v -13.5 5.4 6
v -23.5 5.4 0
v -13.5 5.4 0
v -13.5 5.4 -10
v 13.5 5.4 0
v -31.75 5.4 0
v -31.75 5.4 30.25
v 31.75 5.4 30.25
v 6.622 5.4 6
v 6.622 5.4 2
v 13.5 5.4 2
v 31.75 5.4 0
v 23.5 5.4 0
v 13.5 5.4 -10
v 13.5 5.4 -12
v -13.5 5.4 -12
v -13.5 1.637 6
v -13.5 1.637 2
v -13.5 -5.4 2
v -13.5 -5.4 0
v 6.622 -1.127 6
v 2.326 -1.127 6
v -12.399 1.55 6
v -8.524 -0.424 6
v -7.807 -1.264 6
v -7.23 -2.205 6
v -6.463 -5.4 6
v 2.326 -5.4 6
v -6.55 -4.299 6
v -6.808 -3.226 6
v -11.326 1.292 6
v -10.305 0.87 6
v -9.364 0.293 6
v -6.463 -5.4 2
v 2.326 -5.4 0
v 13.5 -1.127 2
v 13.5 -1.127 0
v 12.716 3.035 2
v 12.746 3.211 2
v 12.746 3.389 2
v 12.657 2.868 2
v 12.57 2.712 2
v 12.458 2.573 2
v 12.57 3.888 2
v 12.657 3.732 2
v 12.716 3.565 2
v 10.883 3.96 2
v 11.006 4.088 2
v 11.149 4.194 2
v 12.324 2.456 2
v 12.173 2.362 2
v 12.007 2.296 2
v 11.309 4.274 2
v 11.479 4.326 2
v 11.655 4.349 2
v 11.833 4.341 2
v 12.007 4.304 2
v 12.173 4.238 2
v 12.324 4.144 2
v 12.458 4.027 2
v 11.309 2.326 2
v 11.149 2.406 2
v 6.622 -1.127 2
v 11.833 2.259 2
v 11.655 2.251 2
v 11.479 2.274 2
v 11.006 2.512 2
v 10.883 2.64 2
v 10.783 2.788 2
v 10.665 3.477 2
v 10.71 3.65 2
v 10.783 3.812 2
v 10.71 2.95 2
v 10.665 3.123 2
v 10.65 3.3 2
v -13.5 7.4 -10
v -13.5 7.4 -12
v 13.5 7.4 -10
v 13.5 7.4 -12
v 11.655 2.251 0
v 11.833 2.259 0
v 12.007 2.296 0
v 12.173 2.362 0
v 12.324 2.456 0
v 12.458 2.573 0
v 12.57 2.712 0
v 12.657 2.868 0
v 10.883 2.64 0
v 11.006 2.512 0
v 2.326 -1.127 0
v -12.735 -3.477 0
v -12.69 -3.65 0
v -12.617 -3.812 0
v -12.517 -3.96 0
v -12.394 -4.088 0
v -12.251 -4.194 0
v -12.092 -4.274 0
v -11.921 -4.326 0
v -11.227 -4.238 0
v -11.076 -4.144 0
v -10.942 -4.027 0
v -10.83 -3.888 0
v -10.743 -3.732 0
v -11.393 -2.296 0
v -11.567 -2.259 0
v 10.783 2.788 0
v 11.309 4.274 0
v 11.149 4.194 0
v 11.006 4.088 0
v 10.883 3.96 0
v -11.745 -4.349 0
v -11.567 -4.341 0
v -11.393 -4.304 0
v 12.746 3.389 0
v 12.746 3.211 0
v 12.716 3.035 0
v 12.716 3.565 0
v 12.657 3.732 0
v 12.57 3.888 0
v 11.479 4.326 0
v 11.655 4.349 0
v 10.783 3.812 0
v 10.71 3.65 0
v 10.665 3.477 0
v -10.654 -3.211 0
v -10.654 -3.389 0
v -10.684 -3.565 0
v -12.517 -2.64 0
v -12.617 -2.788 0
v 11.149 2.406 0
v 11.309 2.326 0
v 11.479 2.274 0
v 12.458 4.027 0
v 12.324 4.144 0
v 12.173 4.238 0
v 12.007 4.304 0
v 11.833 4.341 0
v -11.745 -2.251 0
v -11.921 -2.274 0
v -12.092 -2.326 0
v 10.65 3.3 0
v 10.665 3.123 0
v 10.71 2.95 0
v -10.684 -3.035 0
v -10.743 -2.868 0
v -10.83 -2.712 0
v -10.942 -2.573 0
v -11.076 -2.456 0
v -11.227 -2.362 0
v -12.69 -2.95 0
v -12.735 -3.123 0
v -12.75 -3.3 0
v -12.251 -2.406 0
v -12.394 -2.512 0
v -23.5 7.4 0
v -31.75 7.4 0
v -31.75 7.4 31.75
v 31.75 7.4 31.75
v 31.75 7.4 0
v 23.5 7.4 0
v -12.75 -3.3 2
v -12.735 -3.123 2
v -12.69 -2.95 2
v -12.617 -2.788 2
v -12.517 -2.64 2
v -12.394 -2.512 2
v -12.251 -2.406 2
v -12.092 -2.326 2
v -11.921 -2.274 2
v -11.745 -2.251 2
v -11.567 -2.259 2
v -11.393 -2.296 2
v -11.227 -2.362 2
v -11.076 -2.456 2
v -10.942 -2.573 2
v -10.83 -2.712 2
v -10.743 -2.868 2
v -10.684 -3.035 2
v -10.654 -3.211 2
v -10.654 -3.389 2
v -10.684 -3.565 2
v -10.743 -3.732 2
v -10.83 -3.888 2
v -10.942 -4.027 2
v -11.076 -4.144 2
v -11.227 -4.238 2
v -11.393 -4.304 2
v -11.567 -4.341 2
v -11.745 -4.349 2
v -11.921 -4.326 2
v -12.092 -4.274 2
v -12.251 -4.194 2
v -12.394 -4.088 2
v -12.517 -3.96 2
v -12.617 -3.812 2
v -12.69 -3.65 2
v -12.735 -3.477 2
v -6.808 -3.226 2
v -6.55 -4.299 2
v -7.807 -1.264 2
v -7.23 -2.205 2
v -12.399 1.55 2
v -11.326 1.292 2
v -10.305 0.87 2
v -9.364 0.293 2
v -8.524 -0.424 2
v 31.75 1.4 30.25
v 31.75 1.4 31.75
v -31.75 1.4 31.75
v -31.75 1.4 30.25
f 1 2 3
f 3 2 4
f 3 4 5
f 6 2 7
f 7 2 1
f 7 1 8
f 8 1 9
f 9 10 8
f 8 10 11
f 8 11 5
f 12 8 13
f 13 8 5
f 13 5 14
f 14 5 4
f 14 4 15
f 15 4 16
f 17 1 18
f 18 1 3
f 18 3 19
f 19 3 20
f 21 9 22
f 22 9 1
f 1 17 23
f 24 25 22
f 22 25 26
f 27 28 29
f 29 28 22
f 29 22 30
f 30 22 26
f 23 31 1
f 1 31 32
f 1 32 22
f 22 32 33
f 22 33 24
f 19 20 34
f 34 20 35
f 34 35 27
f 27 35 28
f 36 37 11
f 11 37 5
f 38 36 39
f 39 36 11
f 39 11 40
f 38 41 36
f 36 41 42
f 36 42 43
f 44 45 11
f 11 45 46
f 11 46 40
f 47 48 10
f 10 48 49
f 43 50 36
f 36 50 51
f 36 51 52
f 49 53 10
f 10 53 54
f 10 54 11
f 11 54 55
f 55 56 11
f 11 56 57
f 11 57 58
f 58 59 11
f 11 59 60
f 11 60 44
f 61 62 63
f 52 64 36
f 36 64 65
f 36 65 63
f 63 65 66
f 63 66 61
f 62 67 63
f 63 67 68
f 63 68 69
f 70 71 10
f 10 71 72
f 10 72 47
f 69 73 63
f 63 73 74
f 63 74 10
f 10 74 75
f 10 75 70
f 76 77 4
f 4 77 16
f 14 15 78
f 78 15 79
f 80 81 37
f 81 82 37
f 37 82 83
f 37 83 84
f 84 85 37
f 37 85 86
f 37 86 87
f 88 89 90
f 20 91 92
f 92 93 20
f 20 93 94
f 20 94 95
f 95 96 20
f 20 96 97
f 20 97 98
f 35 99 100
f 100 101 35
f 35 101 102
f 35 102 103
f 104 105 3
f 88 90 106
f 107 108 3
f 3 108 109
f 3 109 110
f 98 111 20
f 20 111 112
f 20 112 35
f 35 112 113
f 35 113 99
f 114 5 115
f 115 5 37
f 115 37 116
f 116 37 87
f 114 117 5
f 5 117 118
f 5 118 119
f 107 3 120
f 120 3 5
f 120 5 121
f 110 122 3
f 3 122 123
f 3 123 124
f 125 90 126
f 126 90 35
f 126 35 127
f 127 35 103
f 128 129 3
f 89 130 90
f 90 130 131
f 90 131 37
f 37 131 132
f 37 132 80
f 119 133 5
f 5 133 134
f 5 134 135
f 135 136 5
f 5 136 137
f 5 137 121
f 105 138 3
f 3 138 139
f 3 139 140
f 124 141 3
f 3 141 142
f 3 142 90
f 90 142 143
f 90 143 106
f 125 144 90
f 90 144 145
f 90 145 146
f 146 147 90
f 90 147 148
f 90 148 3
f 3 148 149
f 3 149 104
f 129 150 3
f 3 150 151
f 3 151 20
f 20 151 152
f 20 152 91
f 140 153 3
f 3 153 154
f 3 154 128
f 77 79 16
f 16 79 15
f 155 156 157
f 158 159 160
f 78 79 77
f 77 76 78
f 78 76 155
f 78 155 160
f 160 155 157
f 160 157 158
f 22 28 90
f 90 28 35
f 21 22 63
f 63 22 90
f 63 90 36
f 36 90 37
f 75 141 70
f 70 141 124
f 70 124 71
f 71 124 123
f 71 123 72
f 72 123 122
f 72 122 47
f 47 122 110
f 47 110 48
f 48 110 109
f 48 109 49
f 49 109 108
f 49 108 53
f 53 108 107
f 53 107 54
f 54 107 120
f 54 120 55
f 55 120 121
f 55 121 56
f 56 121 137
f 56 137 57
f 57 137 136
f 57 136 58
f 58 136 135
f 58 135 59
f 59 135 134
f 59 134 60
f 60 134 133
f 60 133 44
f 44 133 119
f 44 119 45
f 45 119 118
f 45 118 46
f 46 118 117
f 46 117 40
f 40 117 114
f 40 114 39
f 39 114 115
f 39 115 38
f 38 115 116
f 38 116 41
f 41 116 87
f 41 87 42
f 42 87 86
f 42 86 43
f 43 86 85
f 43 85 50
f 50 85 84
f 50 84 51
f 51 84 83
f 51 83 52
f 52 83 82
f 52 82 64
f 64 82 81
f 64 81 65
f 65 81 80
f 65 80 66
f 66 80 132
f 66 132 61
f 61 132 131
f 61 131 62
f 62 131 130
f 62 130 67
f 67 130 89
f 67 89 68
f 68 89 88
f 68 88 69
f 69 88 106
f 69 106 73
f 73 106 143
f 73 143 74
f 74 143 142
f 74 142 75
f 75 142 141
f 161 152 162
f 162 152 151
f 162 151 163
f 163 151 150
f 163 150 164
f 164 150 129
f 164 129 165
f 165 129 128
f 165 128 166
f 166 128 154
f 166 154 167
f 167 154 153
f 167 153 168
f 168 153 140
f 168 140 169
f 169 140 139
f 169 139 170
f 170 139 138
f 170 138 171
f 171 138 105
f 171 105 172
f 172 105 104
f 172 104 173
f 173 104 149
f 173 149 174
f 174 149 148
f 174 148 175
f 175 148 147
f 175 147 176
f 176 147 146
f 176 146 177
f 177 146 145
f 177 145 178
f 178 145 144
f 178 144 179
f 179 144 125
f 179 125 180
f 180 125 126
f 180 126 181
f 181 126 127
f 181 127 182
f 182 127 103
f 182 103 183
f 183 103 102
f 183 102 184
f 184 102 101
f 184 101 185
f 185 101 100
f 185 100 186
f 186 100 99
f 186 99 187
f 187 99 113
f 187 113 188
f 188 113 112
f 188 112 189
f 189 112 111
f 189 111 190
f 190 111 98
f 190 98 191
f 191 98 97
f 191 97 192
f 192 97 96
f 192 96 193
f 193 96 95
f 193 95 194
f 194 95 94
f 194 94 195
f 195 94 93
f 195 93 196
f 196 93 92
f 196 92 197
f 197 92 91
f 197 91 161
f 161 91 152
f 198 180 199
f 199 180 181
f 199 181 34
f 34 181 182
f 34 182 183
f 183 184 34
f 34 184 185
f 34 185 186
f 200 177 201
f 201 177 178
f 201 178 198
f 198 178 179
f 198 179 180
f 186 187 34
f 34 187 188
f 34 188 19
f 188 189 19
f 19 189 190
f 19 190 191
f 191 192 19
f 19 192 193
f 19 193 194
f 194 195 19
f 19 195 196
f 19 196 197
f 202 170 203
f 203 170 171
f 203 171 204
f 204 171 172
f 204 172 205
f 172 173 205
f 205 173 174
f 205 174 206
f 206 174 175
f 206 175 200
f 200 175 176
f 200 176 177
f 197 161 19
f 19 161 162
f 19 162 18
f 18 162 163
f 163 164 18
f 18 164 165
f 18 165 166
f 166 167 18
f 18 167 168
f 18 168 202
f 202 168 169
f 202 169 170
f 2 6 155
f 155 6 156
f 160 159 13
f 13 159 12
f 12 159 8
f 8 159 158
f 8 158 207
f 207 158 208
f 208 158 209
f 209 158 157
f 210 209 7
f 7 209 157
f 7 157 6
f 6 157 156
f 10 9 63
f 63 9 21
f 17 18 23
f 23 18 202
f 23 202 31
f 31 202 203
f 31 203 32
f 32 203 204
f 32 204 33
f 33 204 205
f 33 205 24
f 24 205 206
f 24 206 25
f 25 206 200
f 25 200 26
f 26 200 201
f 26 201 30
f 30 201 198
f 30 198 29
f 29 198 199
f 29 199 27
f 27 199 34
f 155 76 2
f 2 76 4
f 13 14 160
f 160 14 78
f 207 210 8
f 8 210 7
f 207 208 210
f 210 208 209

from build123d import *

# Parameters (mm, degrees)
SKETCH1_W           = 27
SKETCH1_H           = 10.8
BOSS_EXTRUDE1_DEPTH = 2
SKETCH2_W           = 27
SKETCH2_H           = 14
BOSS_EXTRUDE2_DEPTH = 2
SKETCH4_W           = 27
SKETCH4_H           = 12.8
BOSS_EXTRUDE3_DEPTH = 4
SKETCH6_W           = 11.173913912
SKETCH6_H           = 4.273360264
CUT_EXTRUDE1_DEPTH  = 24.685649664
SKETCH7_R           = 1.05
CUT_EXTRUDE2_DEPTH  = 20.519477452
SKETCH8_W           = 4.220493503
SKETCH8_H           = 6.690229829
CUT_EXTRUDE3_DEPTH  = 4
SKETCH9_W           = 4.8014854
SKETCH9_H           = 5.143985731
CUT_EXTRUDE4_DEPTH  = 4
SKETCH10_W          = 63.5
SKETCH10_H          = 31.75
BOSS_EXTRUDE5_DEPTH = 2
SKETCH11_R          = 7.036678993
SKETCH11_W          = 2.657689319
SKETCH11_H          = 6.526639736
CUT_EXTRUDE5_DEPTH  = 4
CHAMFER1_SIZE       = 10
SKETCH12_W          = 63.5
SKETCH12_H          = 1.5
BOSS_EXTRUDE6_DEPTH = 4


with BuildPart() as part:
    # Sketch1 → Boss-Extrude1 (new body)
    with BuildSketch(Plane.XY):
        Rectangle(SKETCH1_W, SKETCH1_H)
    extrude(amount=BOSS_EXTRUDE1_DEPTH)

    # Sketch2 → Boss-Extrude2 (add)
    with BuildSketch(Plane(origin=(0, 5.4, 0), x_dir=(1, 0, 0), z_dir=(0, 1, 0))):
        with Locations((0, 5)):
            Rectangle(SKETCH2_W, SKETCH2_H)
    extrude(amount=BOSS_EXTRUDE2_DEPTH)

    # Sketch4 → Boss-Extrude3 (add)
    with BuildSketch(Plane.XY.offset(2)):
        with Locations((0, 1)):
            Rectangle(SKETCH4_W, SKETCH4_H)
    extrude(amount=BOSS_EXTRUDE3_DEPTH)

    # Sketch6 → Cut-Extrude1 (cut, through all)
    with BuildSketch(Plane.XY.offset(6)):
        with Locations((7.913043044, -3.263319868)):
            Rectangle(SKETCH6_W, SKETCH6_H)
    extrude(amount=-CUT_EXTRUDE1_DEPTH, mode=Mode.SUBTRACT)

    # Sketch7 → Cut-Extrude2 (cut, through all)
    with BuildSketch(Plane(origin=(0, 0, 0), x_dir=(-1, 0, 0), z_dir=(0, 0, -1))):
        with Locations((11.7, -3.3)):
            Circle(SKETCH7_R)
        with Locations((-11.7, 3.3)):
            Circle(SKETCH7_R)
    extrude(amount=-CUT_EXTRUDE2_DEPTH, mode=Mode.SUBTRACT)

    # Sketch8 → Cut-Extrude3 (cut)
    with BuildSketch(Plane.XY.offset(6)):
        with Locations((11.389753248, 2.218475179)):
            Rectangle(SKETCH8_W, SKETCH8_H)
    extrude(amount=-CUT_EXTRUDE3_DEPTH, mode=Mode.SUBTRACT)

    # Sketch9 → Cut-Extrude4 (cut)
    with BuildSketch(Plane.XY.offset(6)):
        with Locations((-11.0992573, -2.828007134)):
            Rectangle(SKETCH9_W, SKETCH9_H)
    extrude(amount=-CUT_EXTRUDE4_DEPTH, mode=Mode.SUBTRACT)

    # Sketch10 → Boss-Extrude5 (add)
    with BuildSketch(Plane(origin=(0, 7.4, 0), x_dir=(1, 0, 0), z_dir=(0, 1, 0))):
        with Locations((0, -15.875)):
            Rectangle(SKETCH10_W, SKETCH10_H)
    extrude(amount=-BOSS_EXTRUDE5_DEPTH)

    # Sketch11 → Cut-Extrude5 (cut)
    with BuildSketch(Plane.XY.offset(2)):
        with Locations((-13.5, -5.4)):
            Circle(SKETCH11_R)
        with Locations((7.950661838, 2.136680132)):
            Rectangle(SKETCH11_W, SKETCH11_H)
    extrude(amount=CUT_EXTRUDE5_DEPTH, mode=Mode.SUBTRACT)

    # Chamfer1
    # the kernel refuses this chamfer: 10 mm, written as the material it adds along each edge
    with BuildSketch(Plane(origin=(-13.5, 5.4, 0), x_dir=(-0.9996219169112968, 0, 0.02749587661058648), z_dir=(0, 1, 0))) as chamfer1_piece_1:
        Polygon((CHAMFER1_SIZE * 0.999621916911, -CHAMFER1_SIZE * 0.0274958766106), (-CHAMFER1_SIZE * 0.0274958766106, -CHAMFER1_SIZE * 0.999621916911), (0, 0), align=None)
    extrude(amount=2)
    with BuildSketch(Plane(origin=(13.5, 7.4, 0), x_dir=(-0.027495876610586147, 0, -0.9996219169112968), z_dir=(0, -1, 0))) as chamfer1_piece_2:
        Polygon((CHAMFER1_SIZE * 0.999621916911, CHAMFER1_SIZE * 0.0274958766106), (-CHAMFER1_SIZE * 0.0274958766106, CHAMFER1_SIZE * 0.999621916911), (0, 0), align=None)
    extrude(amount=2)

    # Sketch12 → Boss-Extrude6 (add)
    with BuildSketch(Plane.XZ.offset(-5.4)):
        with Locations((0, 31)):
            Rectangle(SKETCH12_W, SKETCH12_H)
    extrude(amount=BOSS_EXTRUDE6_DEPTH)


solid = part.part
